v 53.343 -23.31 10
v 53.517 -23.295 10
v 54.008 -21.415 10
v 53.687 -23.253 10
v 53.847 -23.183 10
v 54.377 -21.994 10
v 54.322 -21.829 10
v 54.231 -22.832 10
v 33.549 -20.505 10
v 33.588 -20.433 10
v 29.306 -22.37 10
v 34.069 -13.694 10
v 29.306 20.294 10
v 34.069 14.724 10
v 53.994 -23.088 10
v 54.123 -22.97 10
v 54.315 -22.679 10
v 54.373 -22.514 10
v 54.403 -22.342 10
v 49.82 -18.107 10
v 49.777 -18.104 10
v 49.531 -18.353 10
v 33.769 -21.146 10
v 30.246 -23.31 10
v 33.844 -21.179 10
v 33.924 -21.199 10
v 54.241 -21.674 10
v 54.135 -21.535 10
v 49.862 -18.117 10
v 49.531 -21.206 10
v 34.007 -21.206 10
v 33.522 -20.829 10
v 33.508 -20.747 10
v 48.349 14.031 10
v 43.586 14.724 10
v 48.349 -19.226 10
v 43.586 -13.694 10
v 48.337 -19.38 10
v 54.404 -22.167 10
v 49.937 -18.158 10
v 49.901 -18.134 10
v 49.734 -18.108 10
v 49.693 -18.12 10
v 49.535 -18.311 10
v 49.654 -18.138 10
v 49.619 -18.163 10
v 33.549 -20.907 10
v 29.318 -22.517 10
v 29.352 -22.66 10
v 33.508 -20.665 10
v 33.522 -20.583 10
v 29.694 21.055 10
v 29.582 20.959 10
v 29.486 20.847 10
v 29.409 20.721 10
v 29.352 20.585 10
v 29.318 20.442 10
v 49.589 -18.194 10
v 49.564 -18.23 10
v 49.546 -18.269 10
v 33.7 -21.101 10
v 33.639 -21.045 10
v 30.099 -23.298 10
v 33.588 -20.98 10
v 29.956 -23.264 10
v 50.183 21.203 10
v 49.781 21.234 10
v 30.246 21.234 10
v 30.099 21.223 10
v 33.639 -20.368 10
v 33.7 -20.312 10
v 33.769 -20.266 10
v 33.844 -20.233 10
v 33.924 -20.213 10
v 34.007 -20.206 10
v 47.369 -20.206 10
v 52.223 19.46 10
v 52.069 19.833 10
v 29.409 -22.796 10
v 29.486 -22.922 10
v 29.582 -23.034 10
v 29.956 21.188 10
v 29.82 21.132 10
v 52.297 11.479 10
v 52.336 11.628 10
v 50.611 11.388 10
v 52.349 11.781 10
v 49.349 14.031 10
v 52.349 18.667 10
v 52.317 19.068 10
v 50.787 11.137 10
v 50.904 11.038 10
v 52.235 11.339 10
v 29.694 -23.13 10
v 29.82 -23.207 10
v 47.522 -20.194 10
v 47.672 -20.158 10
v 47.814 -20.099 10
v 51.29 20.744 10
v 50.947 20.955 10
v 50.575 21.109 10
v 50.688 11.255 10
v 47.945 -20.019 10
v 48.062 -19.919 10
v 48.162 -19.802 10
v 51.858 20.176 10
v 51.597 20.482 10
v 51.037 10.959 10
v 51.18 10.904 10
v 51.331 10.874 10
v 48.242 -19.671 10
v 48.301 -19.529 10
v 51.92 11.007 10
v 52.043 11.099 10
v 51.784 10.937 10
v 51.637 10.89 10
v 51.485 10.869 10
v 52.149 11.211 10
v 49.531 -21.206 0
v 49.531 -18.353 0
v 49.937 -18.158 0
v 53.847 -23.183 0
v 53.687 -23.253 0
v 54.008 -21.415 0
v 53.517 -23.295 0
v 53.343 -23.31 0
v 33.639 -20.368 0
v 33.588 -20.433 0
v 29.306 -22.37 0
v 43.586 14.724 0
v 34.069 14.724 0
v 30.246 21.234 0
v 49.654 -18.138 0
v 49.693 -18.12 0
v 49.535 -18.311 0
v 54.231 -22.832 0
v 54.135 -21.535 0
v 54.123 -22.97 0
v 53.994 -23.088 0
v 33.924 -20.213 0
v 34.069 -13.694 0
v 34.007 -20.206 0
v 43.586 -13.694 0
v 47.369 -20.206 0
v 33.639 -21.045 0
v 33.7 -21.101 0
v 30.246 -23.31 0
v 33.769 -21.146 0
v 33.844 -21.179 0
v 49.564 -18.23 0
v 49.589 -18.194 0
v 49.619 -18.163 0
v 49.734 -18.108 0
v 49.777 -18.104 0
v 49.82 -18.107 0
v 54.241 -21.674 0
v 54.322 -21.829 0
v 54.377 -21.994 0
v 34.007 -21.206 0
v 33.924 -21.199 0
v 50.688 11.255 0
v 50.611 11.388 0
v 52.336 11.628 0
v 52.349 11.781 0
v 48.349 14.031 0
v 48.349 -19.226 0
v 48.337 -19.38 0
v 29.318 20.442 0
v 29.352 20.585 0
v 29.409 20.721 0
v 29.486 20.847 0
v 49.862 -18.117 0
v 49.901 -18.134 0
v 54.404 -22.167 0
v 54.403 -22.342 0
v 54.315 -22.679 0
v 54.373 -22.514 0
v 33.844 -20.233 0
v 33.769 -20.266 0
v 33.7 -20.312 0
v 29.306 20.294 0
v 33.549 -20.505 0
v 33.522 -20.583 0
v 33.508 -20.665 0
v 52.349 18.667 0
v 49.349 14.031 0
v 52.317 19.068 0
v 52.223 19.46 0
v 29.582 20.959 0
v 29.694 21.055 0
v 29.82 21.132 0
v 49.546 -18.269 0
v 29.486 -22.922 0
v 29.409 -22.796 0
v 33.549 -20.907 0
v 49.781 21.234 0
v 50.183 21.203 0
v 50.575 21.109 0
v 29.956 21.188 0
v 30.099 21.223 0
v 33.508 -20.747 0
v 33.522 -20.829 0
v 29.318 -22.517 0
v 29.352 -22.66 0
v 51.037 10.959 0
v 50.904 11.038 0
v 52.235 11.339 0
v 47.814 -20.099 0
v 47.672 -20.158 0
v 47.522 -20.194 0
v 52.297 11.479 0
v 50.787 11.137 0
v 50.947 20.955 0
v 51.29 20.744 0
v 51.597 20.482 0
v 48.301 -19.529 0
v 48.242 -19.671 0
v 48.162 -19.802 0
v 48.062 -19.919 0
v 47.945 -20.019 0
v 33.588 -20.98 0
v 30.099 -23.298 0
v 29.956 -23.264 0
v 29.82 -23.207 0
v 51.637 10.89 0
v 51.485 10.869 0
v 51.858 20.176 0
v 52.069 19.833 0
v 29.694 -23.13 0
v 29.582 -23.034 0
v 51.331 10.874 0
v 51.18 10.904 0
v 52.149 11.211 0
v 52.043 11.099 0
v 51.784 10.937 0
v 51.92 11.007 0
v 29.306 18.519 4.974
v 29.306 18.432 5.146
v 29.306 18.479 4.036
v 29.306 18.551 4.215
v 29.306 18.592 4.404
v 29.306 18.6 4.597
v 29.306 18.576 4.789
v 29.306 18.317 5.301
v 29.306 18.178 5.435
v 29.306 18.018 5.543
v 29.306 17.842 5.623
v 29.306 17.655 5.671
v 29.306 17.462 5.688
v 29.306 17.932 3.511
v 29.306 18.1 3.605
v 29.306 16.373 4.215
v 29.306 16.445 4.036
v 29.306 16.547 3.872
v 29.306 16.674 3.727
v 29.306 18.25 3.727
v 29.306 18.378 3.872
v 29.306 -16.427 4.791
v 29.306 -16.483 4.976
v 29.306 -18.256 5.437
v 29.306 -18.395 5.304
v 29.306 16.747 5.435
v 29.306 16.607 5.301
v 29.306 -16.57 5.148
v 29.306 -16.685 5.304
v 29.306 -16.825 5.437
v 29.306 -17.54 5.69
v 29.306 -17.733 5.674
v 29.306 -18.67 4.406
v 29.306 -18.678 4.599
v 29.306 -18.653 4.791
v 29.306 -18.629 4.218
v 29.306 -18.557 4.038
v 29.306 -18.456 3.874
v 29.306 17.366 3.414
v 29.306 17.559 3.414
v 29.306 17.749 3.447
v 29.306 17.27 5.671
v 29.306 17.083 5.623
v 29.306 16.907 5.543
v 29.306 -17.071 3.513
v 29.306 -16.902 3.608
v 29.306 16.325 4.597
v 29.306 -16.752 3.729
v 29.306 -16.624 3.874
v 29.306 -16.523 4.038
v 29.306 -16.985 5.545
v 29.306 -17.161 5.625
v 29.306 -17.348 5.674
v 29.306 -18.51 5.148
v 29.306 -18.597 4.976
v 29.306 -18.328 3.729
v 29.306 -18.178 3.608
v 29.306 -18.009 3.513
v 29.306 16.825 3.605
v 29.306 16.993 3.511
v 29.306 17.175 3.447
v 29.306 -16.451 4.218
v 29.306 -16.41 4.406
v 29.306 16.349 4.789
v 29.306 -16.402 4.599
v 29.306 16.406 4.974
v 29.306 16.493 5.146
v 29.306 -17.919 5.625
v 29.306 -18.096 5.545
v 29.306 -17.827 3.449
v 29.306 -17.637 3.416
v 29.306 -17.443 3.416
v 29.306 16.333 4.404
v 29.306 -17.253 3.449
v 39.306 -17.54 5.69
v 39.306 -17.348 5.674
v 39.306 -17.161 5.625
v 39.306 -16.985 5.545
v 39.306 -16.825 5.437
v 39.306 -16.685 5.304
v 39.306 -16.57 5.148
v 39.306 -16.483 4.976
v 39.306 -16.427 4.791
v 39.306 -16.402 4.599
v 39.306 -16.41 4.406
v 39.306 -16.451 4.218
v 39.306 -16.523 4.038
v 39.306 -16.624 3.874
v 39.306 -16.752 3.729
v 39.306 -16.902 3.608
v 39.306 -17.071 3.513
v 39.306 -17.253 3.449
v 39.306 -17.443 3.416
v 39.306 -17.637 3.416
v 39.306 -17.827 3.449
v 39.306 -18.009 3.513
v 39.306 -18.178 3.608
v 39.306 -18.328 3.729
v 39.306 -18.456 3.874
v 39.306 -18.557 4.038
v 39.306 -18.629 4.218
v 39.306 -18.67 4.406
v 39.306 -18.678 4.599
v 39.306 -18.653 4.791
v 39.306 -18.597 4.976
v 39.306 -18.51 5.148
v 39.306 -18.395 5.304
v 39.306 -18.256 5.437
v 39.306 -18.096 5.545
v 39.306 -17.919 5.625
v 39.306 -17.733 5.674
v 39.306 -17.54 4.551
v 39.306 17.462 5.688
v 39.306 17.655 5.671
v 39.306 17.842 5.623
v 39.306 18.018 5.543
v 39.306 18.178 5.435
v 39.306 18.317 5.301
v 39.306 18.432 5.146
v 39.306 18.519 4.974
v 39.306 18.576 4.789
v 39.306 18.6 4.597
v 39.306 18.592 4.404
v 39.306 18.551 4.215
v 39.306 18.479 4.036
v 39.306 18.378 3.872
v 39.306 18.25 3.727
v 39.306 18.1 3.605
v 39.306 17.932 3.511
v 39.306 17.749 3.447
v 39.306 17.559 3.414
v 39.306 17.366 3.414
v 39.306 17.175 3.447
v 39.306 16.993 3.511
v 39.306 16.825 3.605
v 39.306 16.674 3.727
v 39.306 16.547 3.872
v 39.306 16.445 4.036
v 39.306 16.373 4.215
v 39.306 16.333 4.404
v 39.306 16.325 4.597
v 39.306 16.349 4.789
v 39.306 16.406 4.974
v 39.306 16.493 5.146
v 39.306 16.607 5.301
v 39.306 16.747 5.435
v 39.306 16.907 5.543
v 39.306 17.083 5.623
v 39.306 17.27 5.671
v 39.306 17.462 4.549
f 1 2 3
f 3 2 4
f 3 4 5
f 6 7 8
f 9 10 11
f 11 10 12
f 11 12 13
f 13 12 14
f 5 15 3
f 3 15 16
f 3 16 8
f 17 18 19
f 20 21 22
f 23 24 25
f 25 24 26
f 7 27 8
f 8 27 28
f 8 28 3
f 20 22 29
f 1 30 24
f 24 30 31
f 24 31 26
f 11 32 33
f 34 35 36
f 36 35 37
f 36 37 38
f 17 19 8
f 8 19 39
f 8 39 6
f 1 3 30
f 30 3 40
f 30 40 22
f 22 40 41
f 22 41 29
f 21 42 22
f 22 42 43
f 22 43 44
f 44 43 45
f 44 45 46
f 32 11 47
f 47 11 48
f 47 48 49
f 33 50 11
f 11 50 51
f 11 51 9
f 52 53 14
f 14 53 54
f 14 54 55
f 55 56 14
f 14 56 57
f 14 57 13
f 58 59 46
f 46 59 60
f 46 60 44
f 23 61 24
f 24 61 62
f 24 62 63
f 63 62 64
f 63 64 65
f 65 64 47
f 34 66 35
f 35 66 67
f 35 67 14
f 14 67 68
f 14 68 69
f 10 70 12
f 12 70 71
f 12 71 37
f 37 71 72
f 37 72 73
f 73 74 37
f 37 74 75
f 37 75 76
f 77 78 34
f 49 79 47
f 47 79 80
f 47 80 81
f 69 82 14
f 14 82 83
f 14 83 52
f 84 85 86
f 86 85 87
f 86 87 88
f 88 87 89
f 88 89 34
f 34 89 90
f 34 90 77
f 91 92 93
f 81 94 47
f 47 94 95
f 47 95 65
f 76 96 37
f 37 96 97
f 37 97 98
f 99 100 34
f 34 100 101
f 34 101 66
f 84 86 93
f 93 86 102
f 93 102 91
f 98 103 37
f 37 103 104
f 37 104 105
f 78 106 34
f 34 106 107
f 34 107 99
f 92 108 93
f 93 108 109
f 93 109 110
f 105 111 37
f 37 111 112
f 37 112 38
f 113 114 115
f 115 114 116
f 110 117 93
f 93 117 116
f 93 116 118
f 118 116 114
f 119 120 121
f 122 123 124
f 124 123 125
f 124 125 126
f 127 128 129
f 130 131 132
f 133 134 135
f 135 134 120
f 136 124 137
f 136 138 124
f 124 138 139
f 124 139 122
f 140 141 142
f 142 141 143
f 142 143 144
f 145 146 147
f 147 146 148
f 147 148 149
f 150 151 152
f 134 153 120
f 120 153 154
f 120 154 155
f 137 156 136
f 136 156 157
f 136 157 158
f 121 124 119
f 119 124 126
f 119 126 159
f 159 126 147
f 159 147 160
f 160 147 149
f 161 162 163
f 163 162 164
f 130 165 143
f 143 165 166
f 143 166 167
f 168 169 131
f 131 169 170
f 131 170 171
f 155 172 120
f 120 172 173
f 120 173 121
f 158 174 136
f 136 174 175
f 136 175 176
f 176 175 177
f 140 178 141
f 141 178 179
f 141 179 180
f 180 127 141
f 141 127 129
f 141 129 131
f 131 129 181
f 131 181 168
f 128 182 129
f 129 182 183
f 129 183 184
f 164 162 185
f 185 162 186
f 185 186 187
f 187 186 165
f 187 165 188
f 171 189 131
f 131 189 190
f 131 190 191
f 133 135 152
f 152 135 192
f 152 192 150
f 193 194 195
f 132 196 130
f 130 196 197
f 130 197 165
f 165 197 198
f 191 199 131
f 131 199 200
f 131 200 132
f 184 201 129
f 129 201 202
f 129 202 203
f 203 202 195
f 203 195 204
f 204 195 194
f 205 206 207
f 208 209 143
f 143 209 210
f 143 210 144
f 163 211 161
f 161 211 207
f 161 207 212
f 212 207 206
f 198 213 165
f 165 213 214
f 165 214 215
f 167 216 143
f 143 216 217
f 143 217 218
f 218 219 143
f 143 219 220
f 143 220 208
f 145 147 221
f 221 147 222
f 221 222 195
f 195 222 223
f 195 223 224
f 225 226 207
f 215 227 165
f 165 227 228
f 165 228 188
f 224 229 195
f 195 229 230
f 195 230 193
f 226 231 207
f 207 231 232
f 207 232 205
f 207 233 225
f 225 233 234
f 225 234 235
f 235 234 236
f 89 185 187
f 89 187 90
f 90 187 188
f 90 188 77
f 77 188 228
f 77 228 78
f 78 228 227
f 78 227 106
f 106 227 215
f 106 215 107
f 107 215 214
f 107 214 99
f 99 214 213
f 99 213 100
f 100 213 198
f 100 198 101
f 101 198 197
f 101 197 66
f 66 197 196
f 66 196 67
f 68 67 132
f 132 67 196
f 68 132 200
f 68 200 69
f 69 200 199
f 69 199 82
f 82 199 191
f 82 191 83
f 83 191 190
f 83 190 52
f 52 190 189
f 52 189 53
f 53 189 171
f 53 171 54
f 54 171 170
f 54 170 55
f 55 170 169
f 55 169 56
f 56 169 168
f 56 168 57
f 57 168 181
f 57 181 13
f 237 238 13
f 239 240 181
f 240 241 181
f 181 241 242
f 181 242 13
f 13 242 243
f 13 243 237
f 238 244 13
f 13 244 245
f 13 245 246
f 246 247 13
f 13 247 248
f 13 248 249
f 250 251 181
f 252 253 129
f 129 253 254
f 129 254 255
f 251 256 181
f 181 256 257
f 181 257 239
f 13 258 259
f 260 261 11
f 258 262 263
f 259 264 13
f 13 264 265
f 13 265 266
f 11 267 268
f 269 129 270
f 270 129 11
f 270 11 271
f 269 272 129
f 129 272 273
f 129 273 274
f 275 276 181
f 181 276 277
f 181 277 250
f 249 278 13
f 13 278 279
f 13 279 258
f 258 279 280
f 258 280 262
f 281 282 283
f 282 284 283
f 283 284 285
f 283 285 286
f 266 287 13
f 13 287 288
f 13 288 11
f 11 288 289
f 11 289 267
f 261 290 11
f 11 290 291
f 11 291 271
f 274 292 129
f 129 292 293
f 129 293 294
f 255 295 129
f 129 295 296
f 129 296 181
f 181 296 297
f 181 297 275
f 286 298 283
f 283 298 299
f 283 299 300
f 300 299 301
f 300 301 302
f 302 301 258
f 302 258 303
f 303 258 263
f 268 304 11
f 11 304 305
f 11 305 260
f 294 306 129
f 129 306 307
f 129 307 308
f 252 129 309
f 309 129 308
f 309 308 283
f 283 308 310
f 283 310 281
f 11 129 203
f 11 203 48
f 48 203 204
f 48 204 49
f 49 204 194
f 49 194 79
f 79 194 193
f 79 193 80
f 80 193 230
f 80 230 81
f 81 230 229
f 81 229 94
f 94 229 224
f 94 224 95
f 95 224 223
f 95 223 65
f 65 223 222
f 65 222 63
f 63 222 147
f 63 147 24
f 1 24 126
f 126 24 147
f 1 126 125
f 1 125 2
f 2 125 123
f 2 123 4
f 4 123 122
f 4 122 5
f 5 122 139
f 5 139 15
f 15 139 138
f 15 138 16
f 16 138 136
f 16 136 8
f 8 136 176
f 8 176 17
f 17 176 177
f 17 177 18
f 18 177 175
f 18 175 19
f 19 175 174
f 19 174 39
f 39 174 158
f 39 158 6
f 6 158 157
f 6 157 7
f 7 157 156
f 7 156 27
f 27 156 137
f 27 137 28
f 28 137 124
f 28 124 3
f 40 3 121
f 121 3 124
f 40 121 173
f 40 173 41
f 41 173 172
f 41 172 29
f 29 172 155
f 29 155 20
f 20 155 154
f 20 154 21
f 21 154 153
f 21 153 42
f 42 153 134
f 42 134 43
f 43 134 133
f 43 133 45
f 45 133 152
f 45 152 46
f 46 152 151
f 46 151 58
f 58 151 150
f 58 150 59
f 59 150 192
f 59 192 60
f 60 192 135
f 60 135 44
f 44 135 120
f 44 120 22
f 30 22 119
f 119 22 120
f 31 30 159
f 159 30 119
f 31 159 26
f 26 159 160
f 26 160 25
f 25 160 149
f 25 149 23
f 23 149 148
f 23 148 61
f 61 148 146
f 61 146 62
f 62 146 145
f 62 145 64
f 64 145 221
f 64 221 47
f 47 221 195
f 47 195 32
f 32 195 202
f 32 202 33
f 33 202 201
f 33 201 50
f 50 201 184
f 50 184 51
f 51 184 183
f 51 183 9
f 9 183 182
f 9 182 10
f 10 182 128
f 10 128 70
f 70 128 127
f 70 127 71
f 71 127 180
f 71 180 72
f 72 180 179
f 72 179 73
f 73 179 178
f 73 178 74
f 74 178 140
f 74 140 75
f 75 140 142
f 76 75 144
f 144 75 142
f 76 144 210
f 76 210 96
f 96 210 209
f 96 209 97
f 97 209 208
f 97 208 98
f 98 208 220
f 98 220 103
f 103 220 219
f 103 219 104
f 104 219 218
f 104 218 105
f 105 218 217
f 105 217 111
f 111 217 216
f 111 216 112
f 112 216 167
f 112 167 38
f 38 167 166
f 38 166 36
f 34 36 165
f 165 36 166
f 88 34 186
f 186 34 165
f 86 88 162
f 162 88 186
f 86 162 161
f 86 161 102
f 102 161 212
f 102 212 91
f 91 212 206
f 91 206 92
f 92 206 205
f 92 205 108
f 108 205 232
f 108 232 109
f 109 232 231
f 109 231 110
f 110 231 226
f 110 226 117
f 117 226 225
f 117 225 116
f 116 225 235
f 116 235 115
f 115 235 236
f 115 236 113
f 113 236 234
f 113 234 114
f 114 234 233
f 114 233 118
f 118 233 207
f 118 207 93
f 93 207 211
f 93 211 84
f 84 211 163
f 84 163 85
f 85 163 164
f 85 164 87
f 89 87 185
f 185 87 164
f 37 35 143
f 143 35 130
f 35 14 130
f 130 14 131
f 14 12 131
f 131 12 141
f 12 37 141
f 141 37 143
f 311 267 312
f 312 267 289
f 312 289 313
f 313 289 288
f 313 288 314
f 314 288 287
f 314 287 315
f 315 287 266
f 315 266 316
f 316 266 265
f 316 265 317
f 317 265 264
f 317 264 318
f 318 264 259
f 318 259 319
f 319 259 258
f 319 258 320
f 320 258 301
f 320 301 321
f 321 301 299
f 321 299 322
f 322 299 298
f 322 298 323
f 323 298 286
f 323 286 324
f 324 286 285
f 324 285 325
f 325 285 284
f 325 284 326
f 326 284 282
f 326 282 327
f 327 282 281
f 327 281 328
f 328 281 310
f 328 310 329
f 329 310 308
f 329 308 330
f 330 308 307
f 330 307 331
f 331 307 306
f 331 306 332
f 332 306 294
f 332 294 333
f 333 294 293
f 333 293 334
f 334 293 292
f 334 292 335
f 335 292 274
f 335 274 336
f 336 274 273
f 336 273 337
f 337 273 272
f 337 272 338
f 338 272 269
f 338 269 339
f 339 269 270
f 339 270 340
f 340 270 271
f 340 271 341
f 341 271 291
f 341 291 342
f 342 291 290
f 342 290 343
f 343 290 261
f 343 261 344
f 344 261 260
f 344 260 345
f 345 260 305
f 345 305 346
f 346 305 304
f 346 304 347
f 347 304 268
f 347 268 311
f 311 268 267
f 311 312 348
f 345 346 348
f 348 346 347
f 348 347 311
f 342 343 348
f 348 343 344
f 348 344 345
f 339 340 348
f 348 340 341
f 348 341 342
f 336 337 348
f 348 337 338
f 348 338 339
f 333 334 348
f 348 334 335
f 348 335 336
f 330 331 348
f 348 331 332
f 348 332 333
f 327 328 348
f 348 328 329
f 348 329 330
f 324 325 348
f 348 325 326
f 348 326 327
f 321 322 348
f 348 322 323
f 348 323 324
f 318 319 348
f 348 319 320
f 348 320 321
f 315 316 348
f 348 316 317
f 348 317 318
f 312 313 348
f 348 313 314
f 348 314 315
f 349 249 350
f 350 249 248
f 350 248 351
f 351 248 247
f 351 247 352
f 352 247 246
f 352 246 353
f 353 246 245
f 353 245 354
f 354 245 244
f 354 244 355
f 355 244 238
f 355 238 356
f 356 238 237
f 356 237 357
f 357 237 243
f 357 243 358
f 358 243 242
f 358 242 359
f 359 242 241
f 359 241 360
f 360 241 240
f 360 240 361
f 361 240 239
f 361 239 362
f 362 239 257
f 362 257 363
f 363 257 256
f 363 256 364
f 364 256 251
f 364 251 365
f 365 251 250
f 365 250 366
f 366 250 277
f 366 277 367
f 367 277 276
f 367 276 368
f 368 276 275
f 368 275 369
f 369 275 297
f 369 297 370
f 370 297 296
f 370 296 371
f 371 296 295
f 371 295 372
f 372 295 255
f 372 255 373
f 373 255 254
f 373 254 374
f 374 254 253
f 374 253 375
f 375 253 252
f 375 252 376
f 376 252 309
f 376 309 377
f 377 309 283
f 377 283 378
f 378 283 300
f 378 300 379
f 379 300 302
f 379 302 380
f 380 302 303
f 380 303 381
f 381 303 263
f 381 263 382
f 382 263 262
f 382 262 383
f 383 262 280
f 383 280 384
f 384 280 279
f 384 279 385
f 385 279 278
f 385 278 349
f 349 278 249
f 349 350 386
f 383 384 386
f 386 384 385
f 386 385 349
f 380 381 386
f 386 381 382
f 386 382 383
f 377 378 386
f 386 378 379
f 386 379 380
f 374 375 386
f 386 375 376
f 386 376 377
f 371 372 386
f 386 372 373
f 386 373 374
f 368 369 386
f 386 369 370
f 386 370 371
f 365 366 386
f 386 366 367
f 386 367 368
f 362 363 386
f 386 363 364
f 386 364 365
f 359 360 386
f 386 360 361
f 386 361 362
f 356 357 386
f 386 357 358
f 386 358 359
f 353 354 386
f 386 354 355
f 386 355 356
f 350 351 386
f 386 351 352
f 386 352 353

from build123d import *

# Parameters (mm, degrees)
SKETCH1_W           = 9.517416833
SKETCH1_H           = 28.418949141
BOSS_EXTRUDE2_DEPTH = 10
SKETCH4_R           = 1.138899504
CUT_EXTRUDE4_DEPTH  = 10


with BuildPart() as part:
    # Sketch1 → Boss-Extrude2 (new body)
    with BuildSketch(Plane.XY):
        with BuildLine():
            Line((52.348839191, 18.666807499), (52.348839191, 11.781367137))
            ThreePointArc((52.348839191, 11.781367137), (51.636993048, 10.890313034), (50.610732816, 11.387798993))
            Line((50.610732816, 11.387798993), (49.348838236, 14.031369137))
            Line((49.348838236, 14.031369137), (48.348839191, 14.031369137))
            Line((48.348839191, 14.031369137), (48.348839191, -19.226196728))
            ThreePointArc((48.348839191, -19.226196728), (48.061803836, -19.919161373), (47.368839191, -20.206196728))
            Line((47.368839191, -20.206196728), (34.006617177, -20.206196728))
            ThreePointArc((34.006617177, -20.206196728), (33.506618177, -20.706195728), (34.006617177, -21.206194728))
            Line((34.006617177, -21.206194728), (49.531176023, -21.206194728))
            Line((49.531176023, -21.206194728), (49.531176023, -18.353485574))
            ThreePointArc((49.531176023, -18.353485574), (49.672877658, -18.128161546), (49.937346497, -18.158269753))
            Line((49.937346497, -18.158269753), (54.007766524, -21.414600476))
            ThreePointArc((54.007766524, -21.414600476), (54.347138604, -22.597728023), (53.343040178, -23.309592161))
            Line((53.343040178, -23.309592161), (30.246422358, -23.309592161))
            ThreePointArc((30.246422358, -23.309592161), (29.581741984, -23.034272535), (29.306422358, -22.369592161))
            Line((29.306422358, -22.369592161), (29.306422358, 20.294472595))
            ThreePointArc((29.306422358, 20.294472595), (29.581741984, 20.959152969), (30.246422358, 21.234472595))
            Line((30.246422358, 21.234472595), (49.781174095, 21.234472595))
            ThreePointArc((49.781174095, 21.234472595), (51.596787496, 20.4824209), (52.348839191, 18.666807499))
        make_face()
        with Locations((38.827630775, 0.514998025)):
            Rectangle(SKETCH1_W, SKETCH1_H, mode=Mode.SUBTRACT)
    extrude(amount=BOSS_EXTRUDE2_DEPTH)

    # Sketch4 → Cut-Extrude4 (cut)
    with BuildSketch(Plane.ZY.offset(-29.306422358)):
        with Locations((4.548950863, 17.462440217)):
            Circle(SKETCH4_R)
        with Locations((4.551120241, -17.540074349)):
            Circle(SKETCH4_R)
    extrude(amount=-CUT_EXTRUDE4_DEPTH, mode=Mode.SUBTRACT)


solid = part.part
